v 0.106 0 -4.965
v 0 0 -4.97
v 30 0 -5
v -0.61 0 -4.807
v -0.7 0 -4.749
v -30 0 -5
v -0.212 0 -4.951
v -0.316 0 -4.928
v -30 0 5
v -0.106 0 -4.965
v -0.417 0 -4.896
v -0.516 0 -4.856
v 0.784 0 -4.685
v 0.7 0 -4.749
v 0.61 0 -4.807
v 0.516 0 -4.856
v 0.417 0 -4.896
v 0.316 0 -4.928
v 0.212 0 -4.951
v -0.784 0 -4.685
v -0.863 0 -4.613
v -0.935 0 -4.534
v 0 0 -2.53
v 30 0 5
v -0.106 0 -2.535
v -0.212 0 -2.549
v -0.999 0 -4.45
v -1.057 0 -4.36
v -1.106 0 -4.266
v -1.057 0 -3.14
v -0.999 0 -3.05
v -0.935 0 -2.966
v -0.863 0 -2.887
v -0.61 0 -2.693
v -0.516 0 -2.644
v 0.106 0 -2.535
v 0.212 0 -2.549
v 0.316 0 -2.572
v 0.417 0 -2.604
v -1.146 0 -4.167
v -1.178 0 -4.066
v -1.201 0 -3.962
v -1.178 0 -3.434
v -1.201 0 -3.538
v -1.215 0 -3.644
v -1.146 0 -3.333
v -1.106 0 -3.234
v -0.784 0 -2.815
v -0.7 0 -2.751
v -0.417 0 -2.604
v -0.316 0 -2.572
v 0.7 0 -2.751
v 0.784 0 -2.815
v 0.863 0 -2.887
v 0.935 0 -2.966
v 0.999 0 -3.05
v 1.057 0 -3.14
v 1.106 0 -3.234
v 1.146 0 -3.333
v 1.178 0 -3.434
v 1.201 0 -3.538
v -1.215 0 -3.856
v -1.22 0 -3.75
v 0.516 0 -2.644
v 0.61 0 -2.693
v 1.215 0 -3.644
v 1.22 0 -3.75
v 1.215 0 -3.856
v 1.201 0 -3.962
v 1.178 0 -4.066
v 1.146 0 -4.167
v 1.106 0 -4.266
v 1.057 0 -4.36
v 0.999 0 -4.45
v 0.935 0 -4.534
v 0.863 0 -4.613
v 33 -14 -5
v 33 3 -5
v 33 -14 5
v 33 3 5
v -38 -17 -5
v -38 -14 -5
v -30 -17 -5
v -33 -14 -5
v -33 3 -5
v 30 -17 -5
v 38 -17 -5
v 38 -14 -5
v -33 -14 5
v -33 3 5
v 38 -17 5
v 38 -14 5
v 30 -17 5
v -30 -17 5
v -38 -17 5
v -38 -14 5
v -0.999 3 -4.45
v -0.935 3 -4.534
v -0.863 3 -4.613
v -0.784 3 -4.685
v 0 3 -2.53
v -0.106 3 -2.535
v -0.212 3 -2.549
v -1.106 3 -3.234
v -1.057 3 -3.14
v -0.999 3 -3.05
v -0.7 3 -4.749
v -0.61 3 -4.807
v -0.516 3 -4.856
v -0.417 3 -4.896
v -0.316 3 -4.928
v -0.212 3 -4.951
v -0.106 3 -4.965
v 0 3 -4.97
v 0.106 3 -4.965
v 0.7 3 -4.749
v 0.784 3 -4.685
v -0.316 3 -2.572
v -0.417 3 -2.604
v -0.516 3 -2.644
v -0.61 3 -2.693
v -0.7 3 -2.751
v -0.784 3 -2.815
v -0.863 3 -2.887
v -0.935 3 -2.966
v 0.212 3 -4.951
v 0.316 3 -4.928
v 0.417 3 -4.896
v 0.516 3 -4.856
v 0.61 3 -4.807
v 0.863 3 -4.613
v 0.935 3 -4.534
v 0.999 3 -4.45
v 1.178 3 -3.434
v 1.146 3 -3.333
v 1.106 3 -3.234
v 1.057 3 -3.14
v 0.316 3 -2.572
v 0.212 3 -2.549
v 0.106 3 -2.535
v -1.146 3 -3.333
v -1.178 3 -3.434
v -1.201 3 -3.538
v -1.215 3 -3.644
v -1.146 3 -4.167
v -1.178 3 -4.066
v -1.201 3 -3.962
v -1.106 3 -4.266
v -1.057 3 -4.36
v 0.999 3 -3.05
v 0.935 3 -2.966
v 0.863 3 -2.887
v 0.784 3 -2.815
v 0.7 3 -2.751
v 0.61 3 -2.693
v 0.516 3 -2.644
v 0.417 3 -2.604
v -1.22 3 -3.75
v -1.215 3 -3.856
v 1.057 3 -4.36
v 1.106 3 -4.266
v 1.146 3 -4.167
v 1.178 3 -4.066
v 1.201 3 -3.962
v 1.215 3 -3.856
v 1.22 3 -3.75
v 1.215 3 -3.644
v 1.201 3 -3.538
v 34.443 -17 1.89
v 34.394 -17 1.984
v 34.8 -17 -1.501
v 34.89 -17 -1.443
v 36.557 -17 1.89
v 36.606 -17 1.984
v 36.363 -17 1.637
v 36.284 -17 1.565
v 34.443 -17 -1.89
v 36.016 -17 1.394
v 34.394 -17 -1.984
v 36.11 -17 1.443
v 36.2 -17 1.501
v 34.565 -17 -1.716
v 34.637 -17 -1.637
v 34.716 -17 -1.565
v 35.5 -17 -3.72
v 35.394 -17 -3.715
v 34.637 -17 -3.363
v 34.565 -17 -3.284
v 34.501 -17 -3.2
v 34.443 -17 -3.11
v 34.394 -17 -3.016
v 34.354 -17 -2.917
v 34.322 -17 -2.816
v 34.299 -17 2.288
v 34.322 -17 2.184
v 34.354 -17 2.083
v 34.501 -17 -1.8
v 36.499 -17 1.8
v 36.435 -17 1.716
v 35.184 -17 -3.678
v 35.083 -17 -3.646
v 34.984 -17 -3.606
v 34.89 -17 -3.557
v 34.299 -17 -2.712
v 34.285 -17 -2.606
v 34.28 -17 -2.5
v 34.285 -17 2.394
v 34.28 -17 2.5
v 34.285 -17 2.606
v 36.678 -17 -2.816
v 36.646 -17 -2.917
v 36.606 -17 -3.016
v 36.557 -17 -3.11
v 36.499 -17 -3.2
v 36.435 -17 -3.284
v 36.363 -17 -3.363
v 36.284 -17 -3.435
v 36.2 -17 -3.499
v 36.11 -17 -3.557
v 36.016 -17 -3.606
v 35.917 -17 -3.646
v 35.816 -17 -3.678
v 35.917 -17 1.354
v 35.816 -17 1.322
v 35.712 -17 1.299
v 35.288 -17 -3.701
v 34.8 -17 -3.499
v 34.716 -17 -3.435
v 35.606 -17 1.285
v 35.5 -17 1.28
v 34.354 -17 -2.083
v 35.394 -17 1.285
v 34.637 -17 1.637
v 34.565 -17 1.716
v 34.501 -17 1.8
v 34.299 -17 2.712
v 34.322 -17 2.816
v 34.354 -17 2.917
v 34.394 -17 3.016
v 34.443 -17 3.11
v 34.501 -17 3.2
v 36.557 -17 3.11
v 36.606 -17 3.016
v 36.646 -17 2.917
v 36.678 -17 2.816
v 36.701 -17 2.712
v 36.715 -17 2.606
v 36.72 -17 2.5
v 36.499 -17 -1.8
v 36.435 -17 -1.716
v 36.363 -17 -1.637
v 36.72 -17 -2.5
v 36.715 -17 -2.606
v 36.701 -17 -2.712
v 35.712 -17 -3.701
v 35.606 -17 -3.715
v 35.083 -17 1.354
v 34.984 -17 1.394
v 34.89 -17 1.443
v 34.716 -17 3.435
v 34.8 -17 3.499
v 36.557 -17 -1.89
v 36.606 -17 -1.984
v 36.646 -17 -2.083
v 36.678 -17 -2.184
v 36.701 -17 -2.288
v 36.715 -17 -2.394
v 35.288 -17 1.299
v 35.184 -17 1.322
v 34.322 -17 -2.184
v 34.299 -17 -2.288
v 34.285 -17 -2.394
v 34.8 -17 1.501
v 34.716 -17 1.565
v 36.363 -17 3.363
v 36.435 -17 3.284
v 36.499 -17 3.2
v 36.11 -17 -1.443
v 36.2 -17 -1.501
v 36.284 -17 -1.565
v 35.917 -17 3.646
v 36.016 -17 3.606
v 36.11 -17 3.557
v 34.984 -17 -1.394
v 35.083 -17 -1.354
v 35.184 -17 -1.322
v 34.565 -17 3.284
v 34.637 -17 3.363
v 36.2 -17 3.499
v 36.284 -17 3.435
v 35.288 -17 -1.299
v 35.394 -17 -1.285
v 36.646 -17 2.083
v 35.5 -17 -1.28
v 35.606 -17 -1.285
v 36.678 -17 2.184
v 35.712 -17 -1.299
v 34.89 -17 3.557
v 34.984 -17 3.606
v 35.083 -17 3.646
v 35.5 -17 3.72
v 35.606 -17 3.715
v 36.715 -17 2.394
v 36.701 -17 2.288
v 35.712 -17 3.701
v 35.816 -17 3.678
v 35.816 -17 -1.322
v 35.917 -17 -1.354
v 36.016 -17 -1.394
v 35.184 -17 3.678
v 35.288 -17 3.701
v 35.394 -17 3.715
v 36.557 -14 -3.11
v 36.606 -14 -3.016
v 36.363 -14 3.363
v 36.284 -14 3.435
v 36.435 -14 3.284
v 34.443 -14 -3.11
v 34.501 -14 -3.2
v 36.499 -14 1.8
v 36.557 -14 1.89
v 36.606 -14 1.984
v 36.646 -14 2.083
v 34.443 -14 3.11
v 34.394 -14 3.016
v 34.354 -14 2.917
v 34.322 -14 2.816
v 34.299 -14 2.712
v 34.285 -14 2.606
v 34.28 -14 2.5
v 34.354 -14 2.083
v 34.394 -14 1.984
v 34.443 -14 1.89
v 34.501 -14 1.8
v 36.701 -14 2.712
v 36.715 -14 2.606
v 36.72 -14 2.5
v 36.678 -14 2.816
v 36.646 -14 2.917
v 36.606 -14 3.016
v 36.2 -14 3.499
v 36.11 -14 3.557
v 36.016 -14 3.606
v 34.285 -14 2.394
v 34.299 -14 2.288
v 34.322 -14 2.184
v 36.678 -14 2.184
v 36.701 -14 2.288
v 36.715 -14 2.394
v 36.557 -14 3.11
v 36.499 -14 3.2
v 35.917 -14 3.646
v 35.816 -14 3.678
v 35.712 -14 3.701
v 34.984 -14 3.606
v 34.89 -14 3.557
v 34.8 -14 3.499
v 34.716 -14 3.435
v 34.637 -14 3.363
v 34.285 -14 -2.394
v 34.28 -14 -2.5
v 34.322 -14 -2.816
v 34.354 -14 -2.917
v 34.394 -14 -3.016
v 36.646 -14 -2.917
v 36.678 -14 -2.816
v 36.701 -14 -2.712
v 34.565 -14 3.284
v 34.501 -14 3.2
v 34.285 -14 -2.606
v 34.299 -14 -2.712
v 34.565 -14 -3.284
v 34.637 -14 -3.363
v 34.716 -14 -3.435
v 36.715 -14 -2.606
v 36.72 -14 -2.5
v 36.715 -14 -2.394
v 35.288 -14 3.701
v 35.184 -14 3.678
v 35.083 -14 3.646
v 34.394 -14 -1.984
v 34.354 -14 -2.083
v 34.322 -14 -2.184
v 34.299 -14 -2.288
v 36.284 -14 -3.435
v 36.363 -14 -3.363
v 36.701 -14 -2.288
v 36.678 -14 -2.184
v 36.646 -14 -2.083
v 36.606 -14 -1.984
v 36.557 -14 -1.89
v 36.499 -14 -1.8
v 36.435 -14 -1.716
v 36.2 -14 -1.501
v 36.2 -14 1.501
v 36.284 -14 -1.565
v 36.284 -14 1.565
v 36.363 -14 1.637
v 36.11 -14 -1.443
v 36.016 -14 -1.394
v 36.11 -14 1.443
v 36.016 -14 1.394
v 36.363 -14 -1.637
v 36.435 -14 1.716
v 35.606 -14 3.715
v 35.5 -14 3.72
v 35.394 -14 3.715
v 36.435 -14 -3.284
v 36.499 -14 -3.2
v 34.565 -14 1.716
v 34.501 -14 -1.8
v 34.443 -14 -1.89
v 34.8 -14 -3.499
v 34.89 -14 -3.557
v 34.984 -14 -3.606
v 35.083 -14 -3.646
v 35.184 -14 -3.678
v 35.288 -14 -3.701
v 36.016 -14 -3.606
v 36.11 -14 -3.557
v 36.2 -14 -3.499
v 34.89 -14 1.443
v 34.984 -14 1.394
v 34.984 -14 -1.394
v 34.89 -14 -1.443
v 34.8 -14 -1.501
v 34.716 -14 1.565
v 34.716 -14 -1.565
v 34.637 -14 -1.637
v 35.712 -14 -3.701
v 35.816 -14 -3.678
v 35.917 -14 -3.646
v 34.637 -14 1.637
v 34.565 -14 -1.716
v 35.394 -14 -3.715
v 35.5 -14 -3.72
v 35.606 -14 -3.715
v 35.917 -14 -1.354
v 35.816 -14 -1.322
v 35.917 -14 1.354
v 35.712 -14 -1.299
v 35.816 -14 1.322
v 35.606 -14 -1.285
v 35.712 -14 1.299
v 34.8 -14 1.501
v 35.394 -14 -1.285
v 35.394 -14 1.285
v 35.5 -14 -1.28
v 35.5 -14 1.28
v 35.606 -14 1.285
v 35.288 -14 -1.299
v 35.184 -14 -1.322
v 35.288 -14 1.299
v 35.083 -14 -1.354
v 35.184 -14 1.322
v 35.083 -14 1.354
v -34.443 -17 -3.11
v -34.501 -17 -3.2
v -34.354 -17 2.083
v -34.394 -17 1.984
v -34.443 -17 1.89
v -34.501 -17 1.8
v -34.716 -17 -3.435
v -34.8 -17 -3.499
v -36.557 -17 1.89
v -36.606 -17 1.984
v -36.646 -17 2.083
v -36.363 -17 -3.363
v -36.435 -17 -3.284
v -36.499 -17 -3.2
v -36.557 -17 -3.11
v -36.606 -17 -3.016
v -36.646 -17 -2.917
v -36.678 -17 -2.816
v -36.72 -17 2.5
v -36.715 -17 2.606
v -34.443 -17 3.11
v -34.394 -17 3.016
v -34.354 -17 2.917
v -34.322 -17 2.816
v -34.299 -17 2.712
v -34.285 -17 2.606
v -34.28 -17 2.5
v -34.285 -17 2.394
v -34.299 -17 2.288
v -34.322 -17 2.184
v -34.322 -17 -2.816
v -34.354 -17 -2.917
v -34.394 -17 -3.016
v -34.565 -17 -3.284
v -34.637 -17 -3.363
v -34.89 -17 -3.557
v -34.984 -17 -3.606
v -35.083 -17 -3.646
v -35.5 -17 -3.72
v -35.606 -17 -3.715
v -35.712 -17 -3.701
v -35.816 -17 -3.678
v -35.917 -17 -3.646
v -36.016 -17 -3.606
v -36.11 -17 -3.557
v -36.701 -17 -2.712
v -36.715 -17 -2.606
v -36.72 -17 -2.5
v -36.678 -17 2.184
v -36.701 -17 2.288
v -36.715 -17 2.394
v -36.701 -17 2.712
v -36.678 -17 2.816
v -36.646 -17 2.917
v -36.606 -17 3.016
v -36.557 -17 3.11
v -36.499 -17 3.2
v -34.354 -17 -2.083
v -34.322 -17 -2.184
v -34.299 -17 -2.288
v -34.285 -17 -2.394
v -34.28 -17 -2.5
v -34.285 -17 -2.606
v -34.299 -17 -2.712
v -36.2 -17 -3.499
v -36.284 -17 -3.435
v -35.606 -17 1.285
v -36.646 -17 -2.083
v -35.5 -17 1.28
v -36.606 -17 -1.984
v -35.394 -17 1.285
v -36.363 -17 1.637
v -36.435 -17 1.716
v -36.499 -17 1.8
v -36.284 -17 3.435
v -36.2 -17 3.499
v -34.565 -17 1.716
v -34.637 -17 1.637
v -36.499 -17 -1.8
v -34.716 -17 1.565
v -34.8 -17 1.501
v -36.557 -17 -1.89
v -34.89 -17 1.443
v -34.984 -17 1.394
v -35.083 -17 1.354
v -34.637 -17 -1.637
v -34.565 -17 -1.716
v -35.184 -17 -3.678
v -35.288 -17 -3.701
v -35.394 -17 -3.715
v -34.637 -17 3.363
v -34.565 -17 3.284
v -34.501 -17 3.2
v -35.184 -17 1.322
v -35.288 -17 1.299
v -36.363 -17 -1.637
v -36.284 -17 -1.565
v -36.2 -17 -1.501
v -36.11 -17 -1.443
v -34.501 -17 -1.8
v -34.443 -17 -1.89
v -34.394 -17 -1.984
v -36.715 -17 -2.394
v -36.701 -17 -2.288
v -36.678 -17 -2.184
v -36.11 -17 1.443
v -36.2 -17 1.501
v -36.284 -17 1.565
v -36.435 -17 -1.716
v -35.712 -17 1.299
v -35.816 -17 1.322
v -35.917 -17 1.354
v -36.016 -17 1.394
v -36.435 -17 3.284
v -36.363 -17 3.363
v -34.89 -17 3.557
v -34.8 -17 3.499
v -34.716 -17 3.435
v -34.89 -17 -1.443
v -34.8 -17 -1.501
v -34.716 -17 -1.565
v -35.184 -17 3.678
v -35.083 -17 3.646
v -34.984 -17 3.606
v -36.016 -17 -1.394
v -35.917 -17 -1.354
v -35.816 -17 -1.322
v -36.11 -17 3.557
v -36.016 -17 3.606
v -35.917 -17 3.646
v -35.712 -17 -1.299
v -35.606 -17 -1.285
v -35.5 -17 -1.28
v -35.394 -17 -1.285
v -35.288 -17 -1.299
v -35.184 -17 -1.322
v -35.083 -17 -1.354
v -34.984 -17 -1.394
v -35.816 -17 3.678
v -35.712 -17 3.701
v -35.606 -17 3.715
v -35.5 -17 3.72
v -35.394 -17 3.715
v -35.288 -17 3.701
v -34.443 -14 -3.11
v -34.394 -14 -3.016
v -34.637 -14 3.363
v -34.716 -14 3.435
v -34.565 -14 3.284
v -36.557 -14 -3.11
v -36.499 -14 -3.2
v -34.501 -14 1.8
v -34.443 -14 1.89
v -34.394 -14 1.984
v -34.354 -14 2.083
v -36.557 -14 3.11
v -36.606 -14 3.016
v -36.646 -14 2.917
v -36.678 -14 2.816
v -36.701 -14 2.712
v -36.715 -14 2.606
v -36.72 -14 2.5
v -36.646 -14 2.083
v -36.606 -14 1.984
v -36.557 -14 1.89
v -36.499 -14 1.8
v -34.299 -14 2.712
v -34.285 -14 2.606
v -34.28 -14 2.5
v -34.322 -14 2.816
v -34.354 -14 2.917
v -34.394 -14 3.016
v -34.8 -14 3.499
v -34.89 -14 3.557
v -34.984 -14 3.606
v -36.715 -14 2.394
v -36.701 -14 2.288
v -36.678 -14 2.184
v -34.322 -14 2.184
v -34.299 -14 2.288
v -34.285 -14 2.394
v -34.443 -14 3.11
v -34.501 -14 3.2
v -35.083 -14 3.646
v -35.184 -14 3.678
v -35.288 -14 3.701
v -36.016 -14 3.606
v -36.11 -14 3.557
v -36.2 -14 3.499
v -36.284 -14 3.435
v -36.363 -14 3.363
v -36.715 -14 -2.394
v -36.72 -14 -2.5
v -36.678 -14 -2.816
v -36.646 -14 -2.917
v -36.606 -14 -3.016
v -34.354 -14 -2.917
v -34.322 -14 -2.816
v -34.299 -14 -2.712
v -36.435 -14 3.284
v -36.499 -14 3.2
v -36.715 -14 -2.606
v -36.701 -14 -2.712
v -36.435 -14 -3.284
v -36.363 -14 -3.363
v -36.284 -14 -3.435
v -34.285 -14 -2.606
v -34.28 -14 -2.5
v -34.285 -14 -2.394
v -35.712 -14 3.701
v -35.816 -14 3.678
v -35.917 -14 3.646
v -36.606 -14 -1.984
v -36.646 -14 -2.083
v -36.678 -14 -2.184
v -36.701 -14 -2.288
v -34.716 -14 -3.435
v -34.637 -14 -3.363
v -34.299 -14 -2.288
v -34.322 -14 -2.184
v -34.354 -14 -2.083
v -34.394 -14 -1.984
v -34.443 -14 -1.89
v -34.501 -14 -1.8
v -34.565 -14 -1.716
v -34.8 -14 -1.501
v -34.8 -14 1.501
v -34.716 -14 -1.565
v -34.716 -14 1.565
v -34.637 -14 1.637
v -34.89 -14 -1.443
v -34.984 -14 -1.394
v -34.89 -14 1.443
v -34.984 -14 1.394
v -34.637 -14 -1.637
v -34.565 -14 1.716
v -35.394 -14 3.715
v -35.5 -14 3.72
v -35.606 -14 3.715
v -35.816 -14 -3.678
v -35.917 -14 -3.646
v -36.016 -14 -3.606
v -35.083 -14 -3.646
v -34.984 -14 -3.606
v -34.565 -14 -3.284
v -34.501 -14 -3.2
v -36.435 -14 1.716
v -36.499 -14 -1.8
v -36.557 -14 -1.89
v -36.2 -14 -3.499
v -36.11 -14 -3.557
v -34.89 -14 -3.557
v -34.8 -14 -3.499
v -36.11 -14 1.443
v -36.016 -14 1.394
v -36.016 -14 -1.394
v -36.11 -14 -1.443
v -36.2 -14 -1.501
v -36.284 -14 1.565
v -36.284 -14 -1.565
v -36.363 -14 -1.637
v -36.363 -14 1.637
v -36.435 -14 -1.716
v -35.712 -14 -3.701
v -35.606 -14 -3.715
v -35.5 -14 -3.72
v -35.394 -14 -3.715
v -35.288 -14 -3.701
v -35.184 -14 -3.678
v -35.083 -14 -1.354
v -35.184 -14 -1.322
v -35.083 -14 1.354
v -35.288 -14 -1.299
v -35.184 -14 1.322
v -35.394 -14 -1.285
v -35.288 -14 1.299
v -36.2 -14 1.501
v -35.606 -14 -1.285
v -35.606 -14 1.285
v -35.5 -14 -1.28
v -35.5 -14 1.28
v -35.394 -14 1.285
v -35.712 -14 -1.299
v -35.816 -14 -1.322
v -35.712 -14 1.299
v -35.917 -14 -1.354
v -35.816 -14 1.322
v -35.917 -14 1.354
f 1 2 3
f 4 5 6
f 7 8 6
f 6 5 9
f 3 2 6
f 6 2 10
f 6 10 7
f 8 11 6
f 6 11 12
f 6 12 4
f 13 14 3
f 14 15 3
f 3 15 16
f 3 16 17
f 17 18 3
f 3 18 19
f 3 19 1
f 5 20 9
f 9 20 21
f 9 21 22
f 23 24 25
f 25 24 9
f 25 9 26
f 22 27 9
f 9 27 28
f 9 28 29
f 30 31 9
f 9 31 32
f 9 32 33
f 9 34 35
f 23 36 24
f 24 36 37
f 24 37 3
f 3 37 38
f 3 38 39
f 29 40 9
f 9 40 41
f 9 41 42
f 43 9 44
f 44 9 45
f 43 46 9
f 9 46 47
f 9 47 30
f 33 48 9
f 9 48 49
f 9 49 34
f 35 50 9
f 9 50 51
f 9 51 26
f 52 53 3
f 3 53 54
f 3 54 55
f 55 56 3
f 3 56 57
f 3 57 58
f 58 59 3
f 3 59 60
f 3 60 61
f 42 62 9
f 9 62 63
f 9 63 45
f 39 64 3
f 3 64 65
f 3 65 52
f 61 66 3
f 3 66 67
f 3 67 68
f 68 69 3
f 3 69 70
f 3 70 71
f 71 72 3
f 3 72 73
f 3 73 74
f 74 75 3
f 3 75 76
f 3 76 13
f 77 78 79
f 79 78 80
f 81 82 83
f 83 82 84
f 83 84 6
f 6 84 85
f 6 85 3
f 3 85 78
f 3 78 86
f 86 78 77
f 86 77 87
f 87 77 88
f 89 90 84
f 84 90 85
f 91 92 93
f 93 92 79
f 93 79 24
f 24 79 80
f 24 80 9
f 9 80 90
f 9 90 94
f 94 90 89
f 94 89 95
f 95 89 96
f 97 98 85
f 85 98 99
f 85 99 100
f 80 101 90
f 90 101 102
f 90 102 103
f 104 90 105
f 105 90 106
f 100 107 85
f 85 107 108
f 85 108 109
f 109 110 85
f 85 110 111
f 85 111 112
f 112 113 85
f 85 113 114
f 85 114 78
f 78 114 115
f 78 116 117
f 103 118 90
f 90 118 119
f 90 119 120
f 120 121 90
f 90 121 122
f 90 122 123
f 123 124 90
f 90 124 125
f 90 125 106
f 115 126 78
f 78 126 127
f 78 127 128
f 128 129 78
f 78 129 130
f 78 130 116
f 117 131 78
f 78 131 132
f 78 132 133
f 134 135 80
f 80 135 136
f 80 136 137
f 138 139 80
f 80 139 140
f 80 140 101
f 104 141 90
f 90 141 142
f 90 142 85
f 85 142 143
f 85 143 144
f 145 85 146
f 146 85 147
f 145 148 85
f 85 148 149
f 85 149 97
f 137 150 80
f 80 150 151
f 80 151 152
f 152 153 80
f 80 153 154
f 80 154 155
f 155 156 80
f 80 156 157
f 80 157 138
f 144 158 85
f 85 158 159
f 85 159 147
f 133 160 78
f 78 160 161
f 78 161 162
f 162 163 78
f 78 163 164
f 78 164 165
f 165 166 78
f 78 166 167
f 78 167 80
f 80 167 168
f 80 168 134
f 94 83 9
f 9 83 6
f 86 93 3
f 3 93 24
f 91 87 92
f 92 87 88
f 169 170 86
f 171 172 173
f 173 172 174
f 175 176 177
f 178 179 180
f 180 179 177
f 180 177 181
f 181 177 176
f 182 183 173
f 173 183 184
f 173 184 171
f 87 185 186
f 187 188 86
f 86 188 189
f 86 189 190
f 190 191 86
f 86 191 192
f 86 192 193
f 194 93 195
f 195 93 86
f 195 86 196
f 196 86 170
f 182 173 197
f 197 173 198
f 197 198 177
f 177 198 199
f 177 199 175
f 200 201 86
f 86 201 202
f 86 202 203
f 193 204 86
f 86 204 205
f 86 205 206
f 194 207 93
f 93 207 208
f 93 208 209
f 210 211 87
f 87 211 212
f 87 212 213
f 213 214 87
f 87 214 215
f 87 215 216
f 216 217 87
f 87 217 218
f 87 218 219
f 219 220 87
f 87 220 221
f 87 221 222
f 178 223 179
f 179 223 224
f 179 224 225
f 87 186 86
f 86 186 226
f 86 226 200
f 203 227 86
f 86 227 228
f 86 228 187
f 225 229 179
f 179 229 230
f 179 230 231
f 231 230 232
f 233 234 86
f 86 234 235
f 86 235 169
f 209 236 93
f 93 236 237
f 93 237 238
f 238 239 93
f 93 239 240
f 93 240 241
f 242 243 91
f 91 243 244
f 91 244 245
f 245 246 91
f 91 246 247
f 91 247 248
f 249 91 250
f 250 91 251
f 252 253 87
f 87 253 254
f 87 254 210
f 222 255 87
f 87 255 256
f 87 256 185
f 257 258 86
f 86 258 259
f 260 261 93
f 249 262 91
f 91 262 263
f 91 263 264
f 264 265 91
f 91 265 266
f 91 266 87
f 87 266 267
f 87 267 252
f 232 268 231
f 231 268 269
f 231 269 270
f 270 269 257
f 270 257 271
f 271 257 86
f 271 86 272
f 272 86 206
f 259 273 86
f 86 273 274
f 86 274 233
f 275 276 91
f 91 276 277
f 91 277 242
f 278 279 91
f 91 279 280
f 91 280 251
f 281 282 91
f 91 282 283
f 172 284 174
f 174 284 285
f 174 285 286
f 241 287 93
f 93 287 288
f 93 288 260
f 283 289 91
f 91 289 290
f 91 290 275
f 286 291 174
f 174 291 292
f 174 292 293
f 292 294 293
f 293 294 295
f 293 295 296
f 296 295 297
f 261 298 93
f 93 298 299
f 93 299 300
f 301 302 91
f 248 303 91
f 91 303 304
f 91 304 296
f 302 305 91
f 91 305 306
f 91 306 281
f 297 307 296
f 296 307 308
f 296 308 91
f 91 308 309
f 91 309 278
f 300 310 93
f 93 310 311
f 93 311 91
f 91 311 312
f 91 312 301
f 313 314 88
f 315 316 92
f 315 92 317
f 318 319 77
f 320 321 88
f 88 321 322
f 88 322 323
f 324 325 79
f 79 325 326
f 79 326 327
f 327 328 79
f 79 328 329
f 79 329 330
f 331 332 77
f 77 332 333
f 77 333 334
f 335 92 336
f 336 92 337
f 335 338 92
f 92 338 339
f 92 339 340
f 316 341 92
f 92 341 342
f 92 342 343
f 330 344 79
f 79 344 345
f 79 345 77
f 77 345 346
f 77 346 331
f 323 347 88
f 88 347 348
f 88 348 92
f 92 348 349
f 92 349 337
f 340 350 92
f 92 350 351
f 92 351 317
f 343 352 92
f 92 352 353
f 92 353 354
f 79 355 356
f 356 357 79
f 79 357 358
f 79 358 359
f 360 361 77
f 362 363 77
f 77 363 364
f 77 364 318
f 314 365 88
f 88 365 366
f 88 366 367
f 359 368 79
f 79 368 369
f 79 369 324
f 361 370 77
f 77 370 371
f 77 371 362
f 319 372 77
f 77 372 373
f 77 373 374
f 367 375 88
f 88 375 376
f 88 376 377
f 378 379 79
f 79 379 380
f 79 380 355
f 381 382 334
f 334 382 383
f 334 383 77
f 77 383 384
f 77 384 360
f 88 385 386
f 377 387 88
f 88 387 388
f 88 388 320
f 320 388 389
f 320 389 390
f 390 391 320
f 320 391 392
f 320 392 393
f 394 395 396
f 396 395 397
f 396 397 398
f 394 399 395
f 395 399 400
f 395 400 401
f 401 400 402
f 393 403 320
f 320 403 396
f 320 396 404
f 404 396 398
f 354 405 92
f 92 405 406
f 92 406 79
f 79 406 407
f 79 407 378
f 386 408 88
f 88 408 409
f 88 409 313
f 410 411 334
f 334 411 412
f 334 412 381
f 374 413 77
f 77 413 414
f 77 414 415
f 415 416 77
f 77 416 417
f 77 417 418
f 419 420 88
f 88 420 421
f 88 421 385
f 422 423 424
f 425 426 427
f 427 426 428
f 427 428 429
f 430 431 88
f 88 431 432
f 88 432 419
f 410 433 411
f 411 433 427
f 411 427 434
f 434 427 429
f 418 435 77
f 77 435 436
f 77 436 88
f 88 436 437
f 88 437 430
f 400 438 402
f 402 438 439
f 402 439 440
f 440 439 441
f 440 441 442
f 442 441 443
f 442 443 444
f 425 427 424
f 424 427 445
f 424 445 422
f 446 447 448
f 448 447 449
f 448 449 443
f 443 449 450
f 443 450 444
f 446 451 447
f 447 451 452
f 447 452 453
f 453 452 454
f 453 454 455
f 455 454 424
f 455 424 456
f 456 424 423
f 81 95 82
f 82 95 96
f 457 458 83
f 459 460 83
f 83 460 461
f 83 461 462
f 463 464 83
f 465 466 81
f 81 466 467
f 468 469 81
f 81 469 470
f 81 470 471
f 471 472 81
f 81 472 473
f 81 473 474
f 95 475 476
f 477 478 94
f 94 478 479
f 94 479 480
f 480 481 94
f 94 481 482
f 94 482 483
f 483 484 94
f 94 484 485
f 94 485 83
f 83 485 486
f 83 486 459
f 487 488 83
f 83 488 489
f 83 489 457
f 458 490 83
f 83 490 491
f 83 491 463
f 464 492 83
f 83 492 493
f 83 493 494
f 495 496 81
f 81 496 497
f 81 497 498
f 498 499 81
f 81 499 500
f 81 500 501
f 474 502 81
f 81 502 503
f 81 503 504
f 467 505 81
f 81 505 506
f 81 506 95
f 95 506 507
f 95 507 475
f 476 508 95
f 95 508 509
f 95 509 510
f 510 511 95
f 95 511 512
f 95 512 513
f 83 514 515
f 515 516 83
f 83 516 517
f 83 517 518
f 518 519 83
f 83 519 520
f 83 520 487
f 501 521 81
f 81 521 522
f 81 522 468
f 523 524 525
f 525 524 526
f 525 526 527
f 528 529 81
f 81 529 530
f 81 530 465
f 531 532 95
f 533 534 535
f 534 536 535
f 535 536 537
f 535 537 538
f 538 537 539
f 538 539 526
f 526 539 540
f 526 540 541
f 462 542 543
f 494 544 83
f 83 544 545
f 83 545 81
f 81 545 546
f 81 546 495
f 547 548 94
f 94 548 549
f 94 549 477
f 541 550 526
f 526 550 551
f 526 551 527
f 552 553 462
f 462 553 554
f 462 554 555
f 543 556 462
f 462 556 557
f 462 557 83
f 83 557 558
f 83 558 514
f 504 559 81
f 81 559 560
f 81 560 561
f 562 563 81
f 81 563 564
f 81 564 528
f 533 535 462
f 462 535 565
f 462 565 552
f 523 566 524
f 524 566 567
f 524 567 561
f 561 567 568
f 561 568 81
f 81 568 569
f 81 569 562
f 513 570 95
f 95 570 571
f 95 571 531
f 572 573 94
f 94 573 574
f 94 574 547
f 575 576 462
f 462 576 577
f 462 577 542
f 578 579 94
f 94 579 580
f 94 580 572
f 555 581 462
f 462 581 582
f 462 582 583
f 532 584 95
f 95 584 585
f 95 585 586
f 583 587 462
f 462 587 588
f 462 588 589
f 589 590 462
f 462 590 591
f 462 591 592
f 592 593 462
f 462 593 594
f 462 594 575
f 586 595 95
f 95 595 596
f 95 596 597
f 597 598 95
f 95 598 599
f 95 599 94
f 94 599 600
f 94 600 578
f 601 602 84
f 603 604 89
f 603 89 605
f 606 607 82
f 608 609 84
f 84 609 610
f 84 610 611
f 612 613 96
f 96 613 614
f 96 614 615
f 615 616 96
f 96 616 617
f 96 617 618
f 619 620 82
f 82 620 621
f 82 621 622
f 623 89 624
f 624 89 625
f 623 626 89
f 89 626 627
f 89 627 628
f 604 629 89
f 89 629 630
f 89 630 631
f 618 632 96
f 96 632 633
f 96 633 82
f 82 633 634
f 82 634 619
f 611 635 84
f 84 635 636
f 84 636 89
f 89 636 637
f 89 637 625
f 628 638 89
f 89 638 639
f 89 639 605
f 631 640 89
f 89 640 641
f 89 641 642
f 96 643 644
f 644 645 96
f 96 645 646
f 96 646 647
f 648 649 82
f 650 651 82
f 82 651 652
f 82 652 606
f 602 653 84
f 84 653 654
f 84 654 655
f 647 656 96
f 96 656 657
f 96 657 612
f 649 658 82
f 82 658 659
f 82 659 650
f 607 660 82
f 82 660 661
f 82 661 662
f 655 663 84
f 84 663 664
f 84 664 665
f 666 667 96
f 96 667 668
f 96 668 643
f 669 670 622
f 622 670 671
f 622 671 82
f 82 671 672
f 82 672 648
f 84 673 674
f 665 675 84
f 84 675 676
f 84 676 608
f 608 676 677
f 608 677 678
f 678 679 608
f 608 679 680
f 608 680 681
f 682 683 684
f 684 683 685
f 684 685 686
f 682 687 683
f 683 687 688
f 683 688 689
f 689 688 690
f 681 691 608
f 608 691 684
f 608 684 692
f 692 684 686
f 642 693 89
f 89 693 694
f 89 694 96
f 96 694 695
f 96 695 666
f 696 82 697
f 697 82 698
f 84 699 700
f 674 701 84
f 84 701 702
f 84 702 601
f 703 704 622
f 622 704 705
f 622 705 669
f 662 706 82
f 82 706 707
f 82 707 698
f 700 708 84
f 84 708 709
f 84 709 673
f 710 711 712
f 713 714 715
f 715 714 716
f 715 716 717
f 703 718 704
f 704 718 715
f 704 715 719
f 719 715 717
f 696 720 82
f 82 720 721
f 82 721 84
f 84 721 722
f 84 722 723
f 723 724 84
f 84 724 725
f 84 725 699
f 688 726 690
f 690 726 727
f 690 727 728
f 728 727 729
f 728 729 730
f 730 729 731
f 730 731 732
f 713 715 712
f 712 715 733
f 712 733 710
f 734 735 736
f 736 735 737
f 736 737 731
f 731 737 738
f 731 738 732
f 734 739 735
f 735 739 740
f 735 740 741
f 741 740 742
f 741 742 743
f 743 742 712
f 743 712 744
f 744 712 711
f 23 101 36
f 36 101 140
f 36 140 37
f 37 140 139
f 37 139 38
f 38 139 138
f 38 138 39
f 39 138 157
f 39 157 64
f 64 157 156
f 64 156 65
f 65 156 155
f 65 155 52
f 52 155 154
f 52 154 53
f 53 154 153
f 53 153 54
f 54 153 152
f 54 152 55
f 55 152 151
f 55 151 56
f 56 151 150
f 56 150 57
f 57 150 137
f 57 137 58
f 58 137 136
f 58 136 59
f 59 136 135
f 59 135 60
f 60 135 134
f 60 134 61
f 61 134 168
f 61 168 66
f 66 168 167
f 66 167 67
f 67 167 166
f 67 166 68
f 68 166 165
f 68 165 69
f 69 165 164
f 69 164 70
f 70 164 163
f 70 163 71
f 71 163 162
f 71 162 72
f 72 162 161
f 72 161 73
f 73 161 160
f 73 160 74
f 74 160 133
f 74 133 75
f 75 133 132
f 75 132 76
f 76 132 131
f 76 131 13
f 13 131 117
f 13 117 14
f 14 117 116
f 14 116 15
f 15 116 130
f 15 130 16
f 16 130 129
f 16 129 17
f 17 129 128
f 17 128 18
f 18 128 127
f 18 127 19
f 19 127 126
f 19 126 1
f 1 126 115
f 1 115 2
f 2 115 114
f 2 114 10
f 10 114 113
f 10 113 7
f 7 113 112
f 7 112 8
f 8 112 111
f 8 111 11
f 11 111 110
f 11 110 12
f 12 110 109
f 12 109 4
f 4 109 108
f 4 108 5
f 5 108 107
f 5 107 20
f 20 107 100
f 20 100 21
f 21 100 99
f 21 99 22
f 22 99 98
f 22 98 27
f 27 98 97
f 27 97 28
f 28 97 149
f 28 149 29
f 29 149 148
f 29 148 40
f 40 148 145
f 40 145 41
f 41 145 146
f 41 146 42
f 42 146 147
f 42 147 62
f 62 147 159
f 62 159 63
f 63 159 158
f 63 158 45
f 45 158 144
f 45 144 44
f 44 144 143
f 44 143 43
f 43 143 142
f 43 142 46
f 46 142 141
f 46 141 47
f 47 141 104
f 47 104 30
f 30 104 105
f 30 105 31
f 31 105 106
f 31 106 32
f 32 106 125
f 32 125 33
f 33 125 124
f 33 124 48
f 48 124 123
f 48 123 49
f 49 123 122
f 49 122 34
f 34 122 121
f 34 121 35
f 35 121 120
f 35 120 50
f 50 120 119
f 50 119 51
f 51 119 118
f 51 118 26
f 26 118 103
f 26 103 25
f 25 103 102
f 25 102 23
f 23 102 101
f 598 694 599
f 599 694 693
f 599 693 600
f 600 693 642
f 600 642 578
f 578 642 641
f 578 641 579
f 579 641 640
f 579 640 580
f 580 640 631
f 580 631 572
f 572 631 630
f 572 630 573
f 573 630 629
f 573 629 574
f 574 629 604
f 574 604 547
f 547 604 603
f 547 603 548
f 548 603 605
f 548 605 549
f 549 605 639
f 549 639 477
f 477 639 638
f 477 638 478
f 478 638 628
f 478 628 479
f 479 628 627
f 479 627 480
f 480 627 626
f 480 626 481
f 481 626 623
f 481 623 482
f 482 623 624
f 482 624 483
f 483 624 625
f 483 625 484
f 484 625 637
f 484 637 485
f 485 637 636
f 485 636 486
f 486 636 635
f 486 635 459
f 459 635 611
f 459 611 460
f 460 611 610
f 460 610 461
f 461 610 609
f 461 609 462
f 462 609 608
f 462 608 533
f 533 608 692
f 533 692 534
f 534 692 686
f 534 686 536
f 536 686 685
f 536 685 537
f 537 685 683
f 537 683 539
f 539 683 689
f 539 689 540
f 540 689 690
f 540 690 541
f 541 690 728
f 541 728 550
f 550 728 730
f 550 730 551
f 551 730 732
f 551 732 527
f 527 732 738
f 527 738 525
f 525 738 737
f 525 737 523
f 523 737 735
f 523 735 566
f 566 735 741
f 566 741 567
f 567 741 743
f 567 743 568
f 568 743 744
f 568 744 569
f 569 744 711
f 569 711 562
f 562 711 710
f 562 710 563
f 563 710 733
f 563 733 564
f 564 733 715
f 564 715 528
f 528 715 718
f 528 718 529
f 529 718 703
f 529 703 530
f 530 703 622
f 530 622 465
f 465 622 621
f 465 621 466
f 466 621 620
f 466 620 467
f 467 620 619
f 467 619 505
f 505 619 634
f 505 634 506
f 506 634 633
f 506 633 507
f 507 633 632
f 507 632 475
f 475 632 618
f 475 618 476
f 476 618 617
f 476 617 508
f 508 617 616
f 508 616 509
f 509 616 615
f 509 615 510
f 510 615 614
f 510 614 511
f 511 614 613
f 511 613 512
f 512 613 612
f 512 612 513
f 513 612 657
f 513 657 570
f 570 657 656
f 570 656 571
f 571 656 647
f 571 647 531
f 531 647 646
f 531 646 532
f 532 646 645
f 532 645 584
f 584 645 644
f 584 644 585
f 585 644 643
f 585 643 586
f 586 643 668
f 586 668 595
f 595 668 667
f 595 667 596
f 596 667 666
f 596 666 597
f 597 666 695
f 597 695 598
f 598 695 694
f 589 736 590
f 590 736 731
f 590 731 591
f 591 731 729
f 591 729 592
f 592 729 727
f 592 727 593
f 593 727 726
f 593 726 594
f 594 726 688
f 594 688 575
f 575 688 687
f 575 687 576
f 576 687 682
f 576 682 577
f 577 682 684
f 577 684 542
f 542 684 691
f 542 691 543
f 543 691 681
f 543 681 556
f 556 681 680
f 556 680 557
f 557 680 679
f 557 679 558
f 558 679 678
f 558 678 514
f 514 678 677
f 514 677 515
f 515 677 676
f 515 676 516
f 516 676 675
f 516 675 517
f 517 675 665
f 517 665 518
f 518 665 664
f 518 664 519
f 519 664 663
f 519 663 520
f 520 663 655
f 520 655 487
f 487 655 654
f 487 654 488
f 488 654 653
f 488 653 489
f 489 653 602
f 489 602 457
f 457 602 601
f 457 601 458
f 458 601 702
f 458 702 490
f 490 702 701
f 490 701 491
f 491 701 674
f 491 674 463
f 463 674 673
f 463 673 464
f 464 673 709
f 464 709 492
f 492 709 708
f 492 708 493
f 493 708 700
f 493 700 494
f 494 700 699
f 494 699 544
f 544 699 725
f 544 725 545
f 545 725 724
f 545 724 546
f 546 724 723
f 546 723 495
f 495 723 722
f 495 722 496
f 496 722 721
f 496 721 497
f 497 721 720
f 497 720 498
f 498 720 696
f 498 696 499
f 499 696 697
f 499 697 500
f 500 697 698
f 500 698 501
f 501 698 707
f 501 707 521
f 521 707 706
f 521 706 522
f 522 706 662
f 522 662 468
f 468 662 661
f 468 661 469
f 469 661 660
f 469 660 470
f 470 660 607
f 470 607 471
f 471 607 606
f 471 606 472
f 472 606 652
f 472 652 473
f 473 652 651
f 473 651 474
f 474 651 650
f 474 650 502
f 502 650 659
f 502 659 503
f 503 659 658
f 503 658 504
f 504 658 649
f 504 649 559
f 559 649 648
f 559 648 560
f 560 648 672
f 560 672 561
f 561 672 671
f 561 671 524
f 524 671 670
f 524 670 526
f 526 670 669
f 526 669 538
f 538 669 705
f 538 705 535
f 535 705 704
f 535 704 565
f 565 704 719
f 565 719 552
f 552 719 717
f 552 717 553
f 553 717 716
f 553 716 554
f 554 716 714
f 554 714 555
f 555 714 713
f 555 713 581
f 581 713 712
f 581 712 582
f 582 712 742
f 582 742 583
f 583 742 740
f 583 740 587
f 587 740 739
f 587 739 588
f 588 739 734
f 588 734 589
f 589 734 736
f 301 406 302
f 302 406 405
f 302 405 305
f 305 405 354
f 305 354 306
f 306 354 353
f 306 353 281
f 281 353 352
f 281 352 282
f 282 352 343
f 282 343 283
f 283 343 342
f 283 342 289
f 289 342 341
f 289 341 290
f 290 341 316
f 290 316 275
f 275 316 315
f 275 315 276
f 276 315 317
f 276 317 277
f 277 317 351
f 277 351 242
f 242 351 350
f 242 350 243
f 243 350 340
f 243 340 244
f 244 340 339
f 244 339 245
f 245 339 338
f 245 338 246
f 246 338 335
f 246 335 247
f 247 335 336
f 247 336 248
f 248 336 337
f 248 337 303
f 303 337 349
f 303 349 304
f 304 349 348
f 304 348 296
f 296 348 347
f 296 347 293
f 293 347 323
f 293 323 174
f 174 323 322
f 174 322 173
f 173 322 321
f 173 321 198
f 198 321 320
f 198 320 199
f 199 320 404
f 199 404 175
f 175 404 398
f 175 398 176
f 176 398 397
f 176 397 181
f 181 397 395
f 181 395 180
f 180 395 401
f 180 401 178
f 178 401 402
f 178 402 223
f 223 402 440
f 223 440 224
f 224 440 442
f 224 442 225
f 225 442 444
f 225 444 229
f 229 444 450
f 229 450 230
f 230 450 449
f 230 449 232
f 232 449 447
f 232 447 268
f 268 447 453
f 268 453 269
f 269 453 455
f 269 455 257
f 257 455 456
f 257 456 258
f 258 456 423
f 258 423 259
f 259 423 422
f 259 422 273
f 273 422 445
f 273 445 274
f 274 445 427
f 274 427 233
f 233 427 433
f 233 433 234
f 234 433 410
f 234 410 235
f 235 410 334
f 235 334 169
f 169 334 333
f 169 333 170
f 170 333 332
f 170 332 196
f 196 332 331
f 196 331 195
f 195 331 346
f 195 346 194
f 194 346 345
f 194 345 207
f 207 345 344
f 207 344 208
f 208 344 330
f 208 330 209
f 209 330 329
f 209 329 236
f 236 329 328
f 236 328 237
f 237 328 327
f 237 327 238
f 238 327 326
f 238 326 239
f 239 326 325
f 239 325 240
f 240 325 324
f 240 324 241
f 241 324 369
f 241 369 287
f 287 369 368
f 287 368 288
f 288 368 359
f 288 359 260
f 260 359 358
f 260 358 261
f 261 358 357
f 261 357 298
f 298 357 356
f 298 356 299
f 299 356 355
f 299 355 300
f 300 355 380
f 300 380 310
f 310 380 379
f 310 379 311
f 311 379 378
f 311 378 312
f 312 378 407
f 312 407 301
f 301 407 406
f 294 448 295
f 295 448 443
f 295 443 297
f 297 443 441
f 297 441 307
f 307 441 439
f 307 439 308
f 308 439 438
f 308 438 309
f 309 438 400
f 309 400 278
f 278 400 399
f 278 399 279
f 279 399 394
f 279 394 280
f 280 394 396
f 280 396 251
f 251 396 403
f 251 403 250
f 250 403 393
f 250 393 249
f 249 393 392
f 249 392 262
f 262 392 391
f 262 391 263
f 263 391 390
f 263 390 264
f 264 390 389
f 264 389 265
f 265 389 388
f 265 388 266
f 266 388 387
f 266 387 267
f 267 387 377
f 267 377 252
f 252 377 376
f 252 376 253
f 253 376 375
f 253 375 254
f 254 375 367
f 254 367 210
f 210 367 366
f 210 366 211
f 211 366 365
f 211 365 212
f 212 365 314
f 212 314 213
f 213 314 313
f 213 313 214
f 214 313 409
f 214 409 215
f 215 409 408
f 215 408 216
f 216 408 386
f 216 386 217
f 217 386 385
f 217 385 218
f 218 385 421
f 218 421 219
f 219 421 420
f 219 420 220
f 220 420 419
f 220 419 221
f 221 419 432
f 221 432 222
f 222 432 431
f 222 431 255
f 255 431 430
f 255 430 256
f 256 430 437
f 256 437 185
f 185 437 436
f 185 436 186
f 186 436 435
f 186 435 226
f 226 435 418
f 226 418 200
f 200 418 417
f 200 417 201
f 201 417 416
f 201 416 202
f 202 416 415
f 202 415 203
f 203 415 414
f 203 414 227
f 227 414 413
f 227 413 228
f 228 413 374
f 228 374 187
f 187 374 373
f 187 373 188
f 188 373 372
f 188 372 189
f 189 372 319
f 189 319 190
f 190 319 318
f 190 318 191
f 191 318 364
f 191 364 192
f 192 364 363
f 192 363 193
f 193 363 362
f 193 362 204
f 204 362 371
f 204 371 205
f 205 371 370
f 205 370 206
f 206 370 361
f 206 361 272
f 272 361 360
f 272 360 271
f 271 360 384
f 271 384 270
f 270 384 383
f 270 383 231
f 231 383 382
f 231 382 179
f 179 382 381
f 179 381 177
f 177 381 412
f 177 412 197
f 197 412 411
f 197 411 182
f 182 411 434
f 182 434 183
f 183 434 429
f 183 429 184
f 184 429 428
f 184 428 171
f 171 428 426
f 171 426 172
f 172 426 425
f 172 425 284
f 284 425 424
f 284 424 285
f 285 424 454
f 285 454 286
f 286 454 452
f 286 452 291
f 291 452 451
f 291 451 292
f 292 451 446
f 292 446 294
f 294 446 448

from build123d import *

# Parameters (mm, degrees)
SKETCH1_W           = 66
SKETCH1_H           = 5
BOSS_EXTRUDE1_DEPTH = 3
SKETCH3_W           = 3
SKETCH3_H           = 10
BOSS_EXTRUDE2_DEPTH = 14
SKETCH4_W           = 8
SKETCH4_H           = 10
BOSS_EXTRUDE3_DEPTH = 3
SKETCH5_R           = 1.22
CUT_EXTRUDE1_DEPTH  = 44.231932642
SKETCH6_R           = 1.22
CUT_EXTRUDE2_DEPTH  = 42.928510586


with BuildPart() as part:
    # Sketch1 → Boss-Extrude1 (new body)
    with BuildSketch(Plane(origin=(0, 0, 0), x_dir=(1, 0, 0), z_dir=(0, 1, 0))):
        with Locations((0, 2.5)):
            Rectangle(SKETCH1_W, SKETCH1_H)
        with Locations((0, -2.5)):
            Rectangle(SKETCH1_W, SKETCH1_H)
    extrude(amount=BOSS_EXTRUDE1_DEPTH)

    # Sketch3 → Boss-Extrude2 (add)
    with BuildSketch(Plane.XZ):
        with Locations((-31.5, 0)):
            Rectangle(SKETCH3_W, SKETCH3_H)
        with Locations((31.5, 0)):
            Rectangle(SKETCH3_W, SKETCH3_H)
    extrude(amount=BOSS_EXTRUDE2_DEPTH)

    # Sketch4 → Boss-Extrude3 (add)
    with BuildSketch(Plane.XZ.offset(14)):
        with Locations((-34, 0)):
            Rectangle(SKETCH4_W, SKETCH4_H)
        with Locations((34, 0)):
            Rectangle(SKETCH4_W, SKETCH4_H)
    extrude(amount=BOSS_EXTRUDE3_DEPTH)

    # Sketch5 → Cut-Extrude1 (cut, through all)
    with BuildSketch(Plane(origin=(0, 3, 0), x_dir=(1, 0, 0), z_dir=(0, 1, 0))):
        with Locations(Location((0, 3.75, 0), (0, 0, 270))):
            Circle(SKETCH5_R)
    extrude(amount=-CUT_EXTRUDE1_DEPTH, mode=Mode.SUBTRACT)

    # Sketch6 → Cut-Extrude2 (cut, through all)
    with BuildSketch(Plane(origin=(0, -14, 0), x_dir=(1, 0, 0), z_dir=(0, 1, 0))):
        with Locations(Location((-35.5, -2.5, 0), (0, 0, 270))):
            Circle(SKETCH6_R)
        with Locations(Location((-35.5, 2.5, 0), (0, 0, 270))):
            Circle(SKETCH6_R)
    cut_extrude2 = extrude(amount=-CUT_EXTRUDE2_DEPTH, mode=Mode.SUBTRACT)

    # Mirror1: Cut-Extrude2 across plane
    add(cut_extrude2.mirror(Plane(origin=(0, 0, 0), x_dir=(0, 0, 1), z_dir=(1, 0, 0))), mode=Mode.SUBTRACT)


solid = part.part
